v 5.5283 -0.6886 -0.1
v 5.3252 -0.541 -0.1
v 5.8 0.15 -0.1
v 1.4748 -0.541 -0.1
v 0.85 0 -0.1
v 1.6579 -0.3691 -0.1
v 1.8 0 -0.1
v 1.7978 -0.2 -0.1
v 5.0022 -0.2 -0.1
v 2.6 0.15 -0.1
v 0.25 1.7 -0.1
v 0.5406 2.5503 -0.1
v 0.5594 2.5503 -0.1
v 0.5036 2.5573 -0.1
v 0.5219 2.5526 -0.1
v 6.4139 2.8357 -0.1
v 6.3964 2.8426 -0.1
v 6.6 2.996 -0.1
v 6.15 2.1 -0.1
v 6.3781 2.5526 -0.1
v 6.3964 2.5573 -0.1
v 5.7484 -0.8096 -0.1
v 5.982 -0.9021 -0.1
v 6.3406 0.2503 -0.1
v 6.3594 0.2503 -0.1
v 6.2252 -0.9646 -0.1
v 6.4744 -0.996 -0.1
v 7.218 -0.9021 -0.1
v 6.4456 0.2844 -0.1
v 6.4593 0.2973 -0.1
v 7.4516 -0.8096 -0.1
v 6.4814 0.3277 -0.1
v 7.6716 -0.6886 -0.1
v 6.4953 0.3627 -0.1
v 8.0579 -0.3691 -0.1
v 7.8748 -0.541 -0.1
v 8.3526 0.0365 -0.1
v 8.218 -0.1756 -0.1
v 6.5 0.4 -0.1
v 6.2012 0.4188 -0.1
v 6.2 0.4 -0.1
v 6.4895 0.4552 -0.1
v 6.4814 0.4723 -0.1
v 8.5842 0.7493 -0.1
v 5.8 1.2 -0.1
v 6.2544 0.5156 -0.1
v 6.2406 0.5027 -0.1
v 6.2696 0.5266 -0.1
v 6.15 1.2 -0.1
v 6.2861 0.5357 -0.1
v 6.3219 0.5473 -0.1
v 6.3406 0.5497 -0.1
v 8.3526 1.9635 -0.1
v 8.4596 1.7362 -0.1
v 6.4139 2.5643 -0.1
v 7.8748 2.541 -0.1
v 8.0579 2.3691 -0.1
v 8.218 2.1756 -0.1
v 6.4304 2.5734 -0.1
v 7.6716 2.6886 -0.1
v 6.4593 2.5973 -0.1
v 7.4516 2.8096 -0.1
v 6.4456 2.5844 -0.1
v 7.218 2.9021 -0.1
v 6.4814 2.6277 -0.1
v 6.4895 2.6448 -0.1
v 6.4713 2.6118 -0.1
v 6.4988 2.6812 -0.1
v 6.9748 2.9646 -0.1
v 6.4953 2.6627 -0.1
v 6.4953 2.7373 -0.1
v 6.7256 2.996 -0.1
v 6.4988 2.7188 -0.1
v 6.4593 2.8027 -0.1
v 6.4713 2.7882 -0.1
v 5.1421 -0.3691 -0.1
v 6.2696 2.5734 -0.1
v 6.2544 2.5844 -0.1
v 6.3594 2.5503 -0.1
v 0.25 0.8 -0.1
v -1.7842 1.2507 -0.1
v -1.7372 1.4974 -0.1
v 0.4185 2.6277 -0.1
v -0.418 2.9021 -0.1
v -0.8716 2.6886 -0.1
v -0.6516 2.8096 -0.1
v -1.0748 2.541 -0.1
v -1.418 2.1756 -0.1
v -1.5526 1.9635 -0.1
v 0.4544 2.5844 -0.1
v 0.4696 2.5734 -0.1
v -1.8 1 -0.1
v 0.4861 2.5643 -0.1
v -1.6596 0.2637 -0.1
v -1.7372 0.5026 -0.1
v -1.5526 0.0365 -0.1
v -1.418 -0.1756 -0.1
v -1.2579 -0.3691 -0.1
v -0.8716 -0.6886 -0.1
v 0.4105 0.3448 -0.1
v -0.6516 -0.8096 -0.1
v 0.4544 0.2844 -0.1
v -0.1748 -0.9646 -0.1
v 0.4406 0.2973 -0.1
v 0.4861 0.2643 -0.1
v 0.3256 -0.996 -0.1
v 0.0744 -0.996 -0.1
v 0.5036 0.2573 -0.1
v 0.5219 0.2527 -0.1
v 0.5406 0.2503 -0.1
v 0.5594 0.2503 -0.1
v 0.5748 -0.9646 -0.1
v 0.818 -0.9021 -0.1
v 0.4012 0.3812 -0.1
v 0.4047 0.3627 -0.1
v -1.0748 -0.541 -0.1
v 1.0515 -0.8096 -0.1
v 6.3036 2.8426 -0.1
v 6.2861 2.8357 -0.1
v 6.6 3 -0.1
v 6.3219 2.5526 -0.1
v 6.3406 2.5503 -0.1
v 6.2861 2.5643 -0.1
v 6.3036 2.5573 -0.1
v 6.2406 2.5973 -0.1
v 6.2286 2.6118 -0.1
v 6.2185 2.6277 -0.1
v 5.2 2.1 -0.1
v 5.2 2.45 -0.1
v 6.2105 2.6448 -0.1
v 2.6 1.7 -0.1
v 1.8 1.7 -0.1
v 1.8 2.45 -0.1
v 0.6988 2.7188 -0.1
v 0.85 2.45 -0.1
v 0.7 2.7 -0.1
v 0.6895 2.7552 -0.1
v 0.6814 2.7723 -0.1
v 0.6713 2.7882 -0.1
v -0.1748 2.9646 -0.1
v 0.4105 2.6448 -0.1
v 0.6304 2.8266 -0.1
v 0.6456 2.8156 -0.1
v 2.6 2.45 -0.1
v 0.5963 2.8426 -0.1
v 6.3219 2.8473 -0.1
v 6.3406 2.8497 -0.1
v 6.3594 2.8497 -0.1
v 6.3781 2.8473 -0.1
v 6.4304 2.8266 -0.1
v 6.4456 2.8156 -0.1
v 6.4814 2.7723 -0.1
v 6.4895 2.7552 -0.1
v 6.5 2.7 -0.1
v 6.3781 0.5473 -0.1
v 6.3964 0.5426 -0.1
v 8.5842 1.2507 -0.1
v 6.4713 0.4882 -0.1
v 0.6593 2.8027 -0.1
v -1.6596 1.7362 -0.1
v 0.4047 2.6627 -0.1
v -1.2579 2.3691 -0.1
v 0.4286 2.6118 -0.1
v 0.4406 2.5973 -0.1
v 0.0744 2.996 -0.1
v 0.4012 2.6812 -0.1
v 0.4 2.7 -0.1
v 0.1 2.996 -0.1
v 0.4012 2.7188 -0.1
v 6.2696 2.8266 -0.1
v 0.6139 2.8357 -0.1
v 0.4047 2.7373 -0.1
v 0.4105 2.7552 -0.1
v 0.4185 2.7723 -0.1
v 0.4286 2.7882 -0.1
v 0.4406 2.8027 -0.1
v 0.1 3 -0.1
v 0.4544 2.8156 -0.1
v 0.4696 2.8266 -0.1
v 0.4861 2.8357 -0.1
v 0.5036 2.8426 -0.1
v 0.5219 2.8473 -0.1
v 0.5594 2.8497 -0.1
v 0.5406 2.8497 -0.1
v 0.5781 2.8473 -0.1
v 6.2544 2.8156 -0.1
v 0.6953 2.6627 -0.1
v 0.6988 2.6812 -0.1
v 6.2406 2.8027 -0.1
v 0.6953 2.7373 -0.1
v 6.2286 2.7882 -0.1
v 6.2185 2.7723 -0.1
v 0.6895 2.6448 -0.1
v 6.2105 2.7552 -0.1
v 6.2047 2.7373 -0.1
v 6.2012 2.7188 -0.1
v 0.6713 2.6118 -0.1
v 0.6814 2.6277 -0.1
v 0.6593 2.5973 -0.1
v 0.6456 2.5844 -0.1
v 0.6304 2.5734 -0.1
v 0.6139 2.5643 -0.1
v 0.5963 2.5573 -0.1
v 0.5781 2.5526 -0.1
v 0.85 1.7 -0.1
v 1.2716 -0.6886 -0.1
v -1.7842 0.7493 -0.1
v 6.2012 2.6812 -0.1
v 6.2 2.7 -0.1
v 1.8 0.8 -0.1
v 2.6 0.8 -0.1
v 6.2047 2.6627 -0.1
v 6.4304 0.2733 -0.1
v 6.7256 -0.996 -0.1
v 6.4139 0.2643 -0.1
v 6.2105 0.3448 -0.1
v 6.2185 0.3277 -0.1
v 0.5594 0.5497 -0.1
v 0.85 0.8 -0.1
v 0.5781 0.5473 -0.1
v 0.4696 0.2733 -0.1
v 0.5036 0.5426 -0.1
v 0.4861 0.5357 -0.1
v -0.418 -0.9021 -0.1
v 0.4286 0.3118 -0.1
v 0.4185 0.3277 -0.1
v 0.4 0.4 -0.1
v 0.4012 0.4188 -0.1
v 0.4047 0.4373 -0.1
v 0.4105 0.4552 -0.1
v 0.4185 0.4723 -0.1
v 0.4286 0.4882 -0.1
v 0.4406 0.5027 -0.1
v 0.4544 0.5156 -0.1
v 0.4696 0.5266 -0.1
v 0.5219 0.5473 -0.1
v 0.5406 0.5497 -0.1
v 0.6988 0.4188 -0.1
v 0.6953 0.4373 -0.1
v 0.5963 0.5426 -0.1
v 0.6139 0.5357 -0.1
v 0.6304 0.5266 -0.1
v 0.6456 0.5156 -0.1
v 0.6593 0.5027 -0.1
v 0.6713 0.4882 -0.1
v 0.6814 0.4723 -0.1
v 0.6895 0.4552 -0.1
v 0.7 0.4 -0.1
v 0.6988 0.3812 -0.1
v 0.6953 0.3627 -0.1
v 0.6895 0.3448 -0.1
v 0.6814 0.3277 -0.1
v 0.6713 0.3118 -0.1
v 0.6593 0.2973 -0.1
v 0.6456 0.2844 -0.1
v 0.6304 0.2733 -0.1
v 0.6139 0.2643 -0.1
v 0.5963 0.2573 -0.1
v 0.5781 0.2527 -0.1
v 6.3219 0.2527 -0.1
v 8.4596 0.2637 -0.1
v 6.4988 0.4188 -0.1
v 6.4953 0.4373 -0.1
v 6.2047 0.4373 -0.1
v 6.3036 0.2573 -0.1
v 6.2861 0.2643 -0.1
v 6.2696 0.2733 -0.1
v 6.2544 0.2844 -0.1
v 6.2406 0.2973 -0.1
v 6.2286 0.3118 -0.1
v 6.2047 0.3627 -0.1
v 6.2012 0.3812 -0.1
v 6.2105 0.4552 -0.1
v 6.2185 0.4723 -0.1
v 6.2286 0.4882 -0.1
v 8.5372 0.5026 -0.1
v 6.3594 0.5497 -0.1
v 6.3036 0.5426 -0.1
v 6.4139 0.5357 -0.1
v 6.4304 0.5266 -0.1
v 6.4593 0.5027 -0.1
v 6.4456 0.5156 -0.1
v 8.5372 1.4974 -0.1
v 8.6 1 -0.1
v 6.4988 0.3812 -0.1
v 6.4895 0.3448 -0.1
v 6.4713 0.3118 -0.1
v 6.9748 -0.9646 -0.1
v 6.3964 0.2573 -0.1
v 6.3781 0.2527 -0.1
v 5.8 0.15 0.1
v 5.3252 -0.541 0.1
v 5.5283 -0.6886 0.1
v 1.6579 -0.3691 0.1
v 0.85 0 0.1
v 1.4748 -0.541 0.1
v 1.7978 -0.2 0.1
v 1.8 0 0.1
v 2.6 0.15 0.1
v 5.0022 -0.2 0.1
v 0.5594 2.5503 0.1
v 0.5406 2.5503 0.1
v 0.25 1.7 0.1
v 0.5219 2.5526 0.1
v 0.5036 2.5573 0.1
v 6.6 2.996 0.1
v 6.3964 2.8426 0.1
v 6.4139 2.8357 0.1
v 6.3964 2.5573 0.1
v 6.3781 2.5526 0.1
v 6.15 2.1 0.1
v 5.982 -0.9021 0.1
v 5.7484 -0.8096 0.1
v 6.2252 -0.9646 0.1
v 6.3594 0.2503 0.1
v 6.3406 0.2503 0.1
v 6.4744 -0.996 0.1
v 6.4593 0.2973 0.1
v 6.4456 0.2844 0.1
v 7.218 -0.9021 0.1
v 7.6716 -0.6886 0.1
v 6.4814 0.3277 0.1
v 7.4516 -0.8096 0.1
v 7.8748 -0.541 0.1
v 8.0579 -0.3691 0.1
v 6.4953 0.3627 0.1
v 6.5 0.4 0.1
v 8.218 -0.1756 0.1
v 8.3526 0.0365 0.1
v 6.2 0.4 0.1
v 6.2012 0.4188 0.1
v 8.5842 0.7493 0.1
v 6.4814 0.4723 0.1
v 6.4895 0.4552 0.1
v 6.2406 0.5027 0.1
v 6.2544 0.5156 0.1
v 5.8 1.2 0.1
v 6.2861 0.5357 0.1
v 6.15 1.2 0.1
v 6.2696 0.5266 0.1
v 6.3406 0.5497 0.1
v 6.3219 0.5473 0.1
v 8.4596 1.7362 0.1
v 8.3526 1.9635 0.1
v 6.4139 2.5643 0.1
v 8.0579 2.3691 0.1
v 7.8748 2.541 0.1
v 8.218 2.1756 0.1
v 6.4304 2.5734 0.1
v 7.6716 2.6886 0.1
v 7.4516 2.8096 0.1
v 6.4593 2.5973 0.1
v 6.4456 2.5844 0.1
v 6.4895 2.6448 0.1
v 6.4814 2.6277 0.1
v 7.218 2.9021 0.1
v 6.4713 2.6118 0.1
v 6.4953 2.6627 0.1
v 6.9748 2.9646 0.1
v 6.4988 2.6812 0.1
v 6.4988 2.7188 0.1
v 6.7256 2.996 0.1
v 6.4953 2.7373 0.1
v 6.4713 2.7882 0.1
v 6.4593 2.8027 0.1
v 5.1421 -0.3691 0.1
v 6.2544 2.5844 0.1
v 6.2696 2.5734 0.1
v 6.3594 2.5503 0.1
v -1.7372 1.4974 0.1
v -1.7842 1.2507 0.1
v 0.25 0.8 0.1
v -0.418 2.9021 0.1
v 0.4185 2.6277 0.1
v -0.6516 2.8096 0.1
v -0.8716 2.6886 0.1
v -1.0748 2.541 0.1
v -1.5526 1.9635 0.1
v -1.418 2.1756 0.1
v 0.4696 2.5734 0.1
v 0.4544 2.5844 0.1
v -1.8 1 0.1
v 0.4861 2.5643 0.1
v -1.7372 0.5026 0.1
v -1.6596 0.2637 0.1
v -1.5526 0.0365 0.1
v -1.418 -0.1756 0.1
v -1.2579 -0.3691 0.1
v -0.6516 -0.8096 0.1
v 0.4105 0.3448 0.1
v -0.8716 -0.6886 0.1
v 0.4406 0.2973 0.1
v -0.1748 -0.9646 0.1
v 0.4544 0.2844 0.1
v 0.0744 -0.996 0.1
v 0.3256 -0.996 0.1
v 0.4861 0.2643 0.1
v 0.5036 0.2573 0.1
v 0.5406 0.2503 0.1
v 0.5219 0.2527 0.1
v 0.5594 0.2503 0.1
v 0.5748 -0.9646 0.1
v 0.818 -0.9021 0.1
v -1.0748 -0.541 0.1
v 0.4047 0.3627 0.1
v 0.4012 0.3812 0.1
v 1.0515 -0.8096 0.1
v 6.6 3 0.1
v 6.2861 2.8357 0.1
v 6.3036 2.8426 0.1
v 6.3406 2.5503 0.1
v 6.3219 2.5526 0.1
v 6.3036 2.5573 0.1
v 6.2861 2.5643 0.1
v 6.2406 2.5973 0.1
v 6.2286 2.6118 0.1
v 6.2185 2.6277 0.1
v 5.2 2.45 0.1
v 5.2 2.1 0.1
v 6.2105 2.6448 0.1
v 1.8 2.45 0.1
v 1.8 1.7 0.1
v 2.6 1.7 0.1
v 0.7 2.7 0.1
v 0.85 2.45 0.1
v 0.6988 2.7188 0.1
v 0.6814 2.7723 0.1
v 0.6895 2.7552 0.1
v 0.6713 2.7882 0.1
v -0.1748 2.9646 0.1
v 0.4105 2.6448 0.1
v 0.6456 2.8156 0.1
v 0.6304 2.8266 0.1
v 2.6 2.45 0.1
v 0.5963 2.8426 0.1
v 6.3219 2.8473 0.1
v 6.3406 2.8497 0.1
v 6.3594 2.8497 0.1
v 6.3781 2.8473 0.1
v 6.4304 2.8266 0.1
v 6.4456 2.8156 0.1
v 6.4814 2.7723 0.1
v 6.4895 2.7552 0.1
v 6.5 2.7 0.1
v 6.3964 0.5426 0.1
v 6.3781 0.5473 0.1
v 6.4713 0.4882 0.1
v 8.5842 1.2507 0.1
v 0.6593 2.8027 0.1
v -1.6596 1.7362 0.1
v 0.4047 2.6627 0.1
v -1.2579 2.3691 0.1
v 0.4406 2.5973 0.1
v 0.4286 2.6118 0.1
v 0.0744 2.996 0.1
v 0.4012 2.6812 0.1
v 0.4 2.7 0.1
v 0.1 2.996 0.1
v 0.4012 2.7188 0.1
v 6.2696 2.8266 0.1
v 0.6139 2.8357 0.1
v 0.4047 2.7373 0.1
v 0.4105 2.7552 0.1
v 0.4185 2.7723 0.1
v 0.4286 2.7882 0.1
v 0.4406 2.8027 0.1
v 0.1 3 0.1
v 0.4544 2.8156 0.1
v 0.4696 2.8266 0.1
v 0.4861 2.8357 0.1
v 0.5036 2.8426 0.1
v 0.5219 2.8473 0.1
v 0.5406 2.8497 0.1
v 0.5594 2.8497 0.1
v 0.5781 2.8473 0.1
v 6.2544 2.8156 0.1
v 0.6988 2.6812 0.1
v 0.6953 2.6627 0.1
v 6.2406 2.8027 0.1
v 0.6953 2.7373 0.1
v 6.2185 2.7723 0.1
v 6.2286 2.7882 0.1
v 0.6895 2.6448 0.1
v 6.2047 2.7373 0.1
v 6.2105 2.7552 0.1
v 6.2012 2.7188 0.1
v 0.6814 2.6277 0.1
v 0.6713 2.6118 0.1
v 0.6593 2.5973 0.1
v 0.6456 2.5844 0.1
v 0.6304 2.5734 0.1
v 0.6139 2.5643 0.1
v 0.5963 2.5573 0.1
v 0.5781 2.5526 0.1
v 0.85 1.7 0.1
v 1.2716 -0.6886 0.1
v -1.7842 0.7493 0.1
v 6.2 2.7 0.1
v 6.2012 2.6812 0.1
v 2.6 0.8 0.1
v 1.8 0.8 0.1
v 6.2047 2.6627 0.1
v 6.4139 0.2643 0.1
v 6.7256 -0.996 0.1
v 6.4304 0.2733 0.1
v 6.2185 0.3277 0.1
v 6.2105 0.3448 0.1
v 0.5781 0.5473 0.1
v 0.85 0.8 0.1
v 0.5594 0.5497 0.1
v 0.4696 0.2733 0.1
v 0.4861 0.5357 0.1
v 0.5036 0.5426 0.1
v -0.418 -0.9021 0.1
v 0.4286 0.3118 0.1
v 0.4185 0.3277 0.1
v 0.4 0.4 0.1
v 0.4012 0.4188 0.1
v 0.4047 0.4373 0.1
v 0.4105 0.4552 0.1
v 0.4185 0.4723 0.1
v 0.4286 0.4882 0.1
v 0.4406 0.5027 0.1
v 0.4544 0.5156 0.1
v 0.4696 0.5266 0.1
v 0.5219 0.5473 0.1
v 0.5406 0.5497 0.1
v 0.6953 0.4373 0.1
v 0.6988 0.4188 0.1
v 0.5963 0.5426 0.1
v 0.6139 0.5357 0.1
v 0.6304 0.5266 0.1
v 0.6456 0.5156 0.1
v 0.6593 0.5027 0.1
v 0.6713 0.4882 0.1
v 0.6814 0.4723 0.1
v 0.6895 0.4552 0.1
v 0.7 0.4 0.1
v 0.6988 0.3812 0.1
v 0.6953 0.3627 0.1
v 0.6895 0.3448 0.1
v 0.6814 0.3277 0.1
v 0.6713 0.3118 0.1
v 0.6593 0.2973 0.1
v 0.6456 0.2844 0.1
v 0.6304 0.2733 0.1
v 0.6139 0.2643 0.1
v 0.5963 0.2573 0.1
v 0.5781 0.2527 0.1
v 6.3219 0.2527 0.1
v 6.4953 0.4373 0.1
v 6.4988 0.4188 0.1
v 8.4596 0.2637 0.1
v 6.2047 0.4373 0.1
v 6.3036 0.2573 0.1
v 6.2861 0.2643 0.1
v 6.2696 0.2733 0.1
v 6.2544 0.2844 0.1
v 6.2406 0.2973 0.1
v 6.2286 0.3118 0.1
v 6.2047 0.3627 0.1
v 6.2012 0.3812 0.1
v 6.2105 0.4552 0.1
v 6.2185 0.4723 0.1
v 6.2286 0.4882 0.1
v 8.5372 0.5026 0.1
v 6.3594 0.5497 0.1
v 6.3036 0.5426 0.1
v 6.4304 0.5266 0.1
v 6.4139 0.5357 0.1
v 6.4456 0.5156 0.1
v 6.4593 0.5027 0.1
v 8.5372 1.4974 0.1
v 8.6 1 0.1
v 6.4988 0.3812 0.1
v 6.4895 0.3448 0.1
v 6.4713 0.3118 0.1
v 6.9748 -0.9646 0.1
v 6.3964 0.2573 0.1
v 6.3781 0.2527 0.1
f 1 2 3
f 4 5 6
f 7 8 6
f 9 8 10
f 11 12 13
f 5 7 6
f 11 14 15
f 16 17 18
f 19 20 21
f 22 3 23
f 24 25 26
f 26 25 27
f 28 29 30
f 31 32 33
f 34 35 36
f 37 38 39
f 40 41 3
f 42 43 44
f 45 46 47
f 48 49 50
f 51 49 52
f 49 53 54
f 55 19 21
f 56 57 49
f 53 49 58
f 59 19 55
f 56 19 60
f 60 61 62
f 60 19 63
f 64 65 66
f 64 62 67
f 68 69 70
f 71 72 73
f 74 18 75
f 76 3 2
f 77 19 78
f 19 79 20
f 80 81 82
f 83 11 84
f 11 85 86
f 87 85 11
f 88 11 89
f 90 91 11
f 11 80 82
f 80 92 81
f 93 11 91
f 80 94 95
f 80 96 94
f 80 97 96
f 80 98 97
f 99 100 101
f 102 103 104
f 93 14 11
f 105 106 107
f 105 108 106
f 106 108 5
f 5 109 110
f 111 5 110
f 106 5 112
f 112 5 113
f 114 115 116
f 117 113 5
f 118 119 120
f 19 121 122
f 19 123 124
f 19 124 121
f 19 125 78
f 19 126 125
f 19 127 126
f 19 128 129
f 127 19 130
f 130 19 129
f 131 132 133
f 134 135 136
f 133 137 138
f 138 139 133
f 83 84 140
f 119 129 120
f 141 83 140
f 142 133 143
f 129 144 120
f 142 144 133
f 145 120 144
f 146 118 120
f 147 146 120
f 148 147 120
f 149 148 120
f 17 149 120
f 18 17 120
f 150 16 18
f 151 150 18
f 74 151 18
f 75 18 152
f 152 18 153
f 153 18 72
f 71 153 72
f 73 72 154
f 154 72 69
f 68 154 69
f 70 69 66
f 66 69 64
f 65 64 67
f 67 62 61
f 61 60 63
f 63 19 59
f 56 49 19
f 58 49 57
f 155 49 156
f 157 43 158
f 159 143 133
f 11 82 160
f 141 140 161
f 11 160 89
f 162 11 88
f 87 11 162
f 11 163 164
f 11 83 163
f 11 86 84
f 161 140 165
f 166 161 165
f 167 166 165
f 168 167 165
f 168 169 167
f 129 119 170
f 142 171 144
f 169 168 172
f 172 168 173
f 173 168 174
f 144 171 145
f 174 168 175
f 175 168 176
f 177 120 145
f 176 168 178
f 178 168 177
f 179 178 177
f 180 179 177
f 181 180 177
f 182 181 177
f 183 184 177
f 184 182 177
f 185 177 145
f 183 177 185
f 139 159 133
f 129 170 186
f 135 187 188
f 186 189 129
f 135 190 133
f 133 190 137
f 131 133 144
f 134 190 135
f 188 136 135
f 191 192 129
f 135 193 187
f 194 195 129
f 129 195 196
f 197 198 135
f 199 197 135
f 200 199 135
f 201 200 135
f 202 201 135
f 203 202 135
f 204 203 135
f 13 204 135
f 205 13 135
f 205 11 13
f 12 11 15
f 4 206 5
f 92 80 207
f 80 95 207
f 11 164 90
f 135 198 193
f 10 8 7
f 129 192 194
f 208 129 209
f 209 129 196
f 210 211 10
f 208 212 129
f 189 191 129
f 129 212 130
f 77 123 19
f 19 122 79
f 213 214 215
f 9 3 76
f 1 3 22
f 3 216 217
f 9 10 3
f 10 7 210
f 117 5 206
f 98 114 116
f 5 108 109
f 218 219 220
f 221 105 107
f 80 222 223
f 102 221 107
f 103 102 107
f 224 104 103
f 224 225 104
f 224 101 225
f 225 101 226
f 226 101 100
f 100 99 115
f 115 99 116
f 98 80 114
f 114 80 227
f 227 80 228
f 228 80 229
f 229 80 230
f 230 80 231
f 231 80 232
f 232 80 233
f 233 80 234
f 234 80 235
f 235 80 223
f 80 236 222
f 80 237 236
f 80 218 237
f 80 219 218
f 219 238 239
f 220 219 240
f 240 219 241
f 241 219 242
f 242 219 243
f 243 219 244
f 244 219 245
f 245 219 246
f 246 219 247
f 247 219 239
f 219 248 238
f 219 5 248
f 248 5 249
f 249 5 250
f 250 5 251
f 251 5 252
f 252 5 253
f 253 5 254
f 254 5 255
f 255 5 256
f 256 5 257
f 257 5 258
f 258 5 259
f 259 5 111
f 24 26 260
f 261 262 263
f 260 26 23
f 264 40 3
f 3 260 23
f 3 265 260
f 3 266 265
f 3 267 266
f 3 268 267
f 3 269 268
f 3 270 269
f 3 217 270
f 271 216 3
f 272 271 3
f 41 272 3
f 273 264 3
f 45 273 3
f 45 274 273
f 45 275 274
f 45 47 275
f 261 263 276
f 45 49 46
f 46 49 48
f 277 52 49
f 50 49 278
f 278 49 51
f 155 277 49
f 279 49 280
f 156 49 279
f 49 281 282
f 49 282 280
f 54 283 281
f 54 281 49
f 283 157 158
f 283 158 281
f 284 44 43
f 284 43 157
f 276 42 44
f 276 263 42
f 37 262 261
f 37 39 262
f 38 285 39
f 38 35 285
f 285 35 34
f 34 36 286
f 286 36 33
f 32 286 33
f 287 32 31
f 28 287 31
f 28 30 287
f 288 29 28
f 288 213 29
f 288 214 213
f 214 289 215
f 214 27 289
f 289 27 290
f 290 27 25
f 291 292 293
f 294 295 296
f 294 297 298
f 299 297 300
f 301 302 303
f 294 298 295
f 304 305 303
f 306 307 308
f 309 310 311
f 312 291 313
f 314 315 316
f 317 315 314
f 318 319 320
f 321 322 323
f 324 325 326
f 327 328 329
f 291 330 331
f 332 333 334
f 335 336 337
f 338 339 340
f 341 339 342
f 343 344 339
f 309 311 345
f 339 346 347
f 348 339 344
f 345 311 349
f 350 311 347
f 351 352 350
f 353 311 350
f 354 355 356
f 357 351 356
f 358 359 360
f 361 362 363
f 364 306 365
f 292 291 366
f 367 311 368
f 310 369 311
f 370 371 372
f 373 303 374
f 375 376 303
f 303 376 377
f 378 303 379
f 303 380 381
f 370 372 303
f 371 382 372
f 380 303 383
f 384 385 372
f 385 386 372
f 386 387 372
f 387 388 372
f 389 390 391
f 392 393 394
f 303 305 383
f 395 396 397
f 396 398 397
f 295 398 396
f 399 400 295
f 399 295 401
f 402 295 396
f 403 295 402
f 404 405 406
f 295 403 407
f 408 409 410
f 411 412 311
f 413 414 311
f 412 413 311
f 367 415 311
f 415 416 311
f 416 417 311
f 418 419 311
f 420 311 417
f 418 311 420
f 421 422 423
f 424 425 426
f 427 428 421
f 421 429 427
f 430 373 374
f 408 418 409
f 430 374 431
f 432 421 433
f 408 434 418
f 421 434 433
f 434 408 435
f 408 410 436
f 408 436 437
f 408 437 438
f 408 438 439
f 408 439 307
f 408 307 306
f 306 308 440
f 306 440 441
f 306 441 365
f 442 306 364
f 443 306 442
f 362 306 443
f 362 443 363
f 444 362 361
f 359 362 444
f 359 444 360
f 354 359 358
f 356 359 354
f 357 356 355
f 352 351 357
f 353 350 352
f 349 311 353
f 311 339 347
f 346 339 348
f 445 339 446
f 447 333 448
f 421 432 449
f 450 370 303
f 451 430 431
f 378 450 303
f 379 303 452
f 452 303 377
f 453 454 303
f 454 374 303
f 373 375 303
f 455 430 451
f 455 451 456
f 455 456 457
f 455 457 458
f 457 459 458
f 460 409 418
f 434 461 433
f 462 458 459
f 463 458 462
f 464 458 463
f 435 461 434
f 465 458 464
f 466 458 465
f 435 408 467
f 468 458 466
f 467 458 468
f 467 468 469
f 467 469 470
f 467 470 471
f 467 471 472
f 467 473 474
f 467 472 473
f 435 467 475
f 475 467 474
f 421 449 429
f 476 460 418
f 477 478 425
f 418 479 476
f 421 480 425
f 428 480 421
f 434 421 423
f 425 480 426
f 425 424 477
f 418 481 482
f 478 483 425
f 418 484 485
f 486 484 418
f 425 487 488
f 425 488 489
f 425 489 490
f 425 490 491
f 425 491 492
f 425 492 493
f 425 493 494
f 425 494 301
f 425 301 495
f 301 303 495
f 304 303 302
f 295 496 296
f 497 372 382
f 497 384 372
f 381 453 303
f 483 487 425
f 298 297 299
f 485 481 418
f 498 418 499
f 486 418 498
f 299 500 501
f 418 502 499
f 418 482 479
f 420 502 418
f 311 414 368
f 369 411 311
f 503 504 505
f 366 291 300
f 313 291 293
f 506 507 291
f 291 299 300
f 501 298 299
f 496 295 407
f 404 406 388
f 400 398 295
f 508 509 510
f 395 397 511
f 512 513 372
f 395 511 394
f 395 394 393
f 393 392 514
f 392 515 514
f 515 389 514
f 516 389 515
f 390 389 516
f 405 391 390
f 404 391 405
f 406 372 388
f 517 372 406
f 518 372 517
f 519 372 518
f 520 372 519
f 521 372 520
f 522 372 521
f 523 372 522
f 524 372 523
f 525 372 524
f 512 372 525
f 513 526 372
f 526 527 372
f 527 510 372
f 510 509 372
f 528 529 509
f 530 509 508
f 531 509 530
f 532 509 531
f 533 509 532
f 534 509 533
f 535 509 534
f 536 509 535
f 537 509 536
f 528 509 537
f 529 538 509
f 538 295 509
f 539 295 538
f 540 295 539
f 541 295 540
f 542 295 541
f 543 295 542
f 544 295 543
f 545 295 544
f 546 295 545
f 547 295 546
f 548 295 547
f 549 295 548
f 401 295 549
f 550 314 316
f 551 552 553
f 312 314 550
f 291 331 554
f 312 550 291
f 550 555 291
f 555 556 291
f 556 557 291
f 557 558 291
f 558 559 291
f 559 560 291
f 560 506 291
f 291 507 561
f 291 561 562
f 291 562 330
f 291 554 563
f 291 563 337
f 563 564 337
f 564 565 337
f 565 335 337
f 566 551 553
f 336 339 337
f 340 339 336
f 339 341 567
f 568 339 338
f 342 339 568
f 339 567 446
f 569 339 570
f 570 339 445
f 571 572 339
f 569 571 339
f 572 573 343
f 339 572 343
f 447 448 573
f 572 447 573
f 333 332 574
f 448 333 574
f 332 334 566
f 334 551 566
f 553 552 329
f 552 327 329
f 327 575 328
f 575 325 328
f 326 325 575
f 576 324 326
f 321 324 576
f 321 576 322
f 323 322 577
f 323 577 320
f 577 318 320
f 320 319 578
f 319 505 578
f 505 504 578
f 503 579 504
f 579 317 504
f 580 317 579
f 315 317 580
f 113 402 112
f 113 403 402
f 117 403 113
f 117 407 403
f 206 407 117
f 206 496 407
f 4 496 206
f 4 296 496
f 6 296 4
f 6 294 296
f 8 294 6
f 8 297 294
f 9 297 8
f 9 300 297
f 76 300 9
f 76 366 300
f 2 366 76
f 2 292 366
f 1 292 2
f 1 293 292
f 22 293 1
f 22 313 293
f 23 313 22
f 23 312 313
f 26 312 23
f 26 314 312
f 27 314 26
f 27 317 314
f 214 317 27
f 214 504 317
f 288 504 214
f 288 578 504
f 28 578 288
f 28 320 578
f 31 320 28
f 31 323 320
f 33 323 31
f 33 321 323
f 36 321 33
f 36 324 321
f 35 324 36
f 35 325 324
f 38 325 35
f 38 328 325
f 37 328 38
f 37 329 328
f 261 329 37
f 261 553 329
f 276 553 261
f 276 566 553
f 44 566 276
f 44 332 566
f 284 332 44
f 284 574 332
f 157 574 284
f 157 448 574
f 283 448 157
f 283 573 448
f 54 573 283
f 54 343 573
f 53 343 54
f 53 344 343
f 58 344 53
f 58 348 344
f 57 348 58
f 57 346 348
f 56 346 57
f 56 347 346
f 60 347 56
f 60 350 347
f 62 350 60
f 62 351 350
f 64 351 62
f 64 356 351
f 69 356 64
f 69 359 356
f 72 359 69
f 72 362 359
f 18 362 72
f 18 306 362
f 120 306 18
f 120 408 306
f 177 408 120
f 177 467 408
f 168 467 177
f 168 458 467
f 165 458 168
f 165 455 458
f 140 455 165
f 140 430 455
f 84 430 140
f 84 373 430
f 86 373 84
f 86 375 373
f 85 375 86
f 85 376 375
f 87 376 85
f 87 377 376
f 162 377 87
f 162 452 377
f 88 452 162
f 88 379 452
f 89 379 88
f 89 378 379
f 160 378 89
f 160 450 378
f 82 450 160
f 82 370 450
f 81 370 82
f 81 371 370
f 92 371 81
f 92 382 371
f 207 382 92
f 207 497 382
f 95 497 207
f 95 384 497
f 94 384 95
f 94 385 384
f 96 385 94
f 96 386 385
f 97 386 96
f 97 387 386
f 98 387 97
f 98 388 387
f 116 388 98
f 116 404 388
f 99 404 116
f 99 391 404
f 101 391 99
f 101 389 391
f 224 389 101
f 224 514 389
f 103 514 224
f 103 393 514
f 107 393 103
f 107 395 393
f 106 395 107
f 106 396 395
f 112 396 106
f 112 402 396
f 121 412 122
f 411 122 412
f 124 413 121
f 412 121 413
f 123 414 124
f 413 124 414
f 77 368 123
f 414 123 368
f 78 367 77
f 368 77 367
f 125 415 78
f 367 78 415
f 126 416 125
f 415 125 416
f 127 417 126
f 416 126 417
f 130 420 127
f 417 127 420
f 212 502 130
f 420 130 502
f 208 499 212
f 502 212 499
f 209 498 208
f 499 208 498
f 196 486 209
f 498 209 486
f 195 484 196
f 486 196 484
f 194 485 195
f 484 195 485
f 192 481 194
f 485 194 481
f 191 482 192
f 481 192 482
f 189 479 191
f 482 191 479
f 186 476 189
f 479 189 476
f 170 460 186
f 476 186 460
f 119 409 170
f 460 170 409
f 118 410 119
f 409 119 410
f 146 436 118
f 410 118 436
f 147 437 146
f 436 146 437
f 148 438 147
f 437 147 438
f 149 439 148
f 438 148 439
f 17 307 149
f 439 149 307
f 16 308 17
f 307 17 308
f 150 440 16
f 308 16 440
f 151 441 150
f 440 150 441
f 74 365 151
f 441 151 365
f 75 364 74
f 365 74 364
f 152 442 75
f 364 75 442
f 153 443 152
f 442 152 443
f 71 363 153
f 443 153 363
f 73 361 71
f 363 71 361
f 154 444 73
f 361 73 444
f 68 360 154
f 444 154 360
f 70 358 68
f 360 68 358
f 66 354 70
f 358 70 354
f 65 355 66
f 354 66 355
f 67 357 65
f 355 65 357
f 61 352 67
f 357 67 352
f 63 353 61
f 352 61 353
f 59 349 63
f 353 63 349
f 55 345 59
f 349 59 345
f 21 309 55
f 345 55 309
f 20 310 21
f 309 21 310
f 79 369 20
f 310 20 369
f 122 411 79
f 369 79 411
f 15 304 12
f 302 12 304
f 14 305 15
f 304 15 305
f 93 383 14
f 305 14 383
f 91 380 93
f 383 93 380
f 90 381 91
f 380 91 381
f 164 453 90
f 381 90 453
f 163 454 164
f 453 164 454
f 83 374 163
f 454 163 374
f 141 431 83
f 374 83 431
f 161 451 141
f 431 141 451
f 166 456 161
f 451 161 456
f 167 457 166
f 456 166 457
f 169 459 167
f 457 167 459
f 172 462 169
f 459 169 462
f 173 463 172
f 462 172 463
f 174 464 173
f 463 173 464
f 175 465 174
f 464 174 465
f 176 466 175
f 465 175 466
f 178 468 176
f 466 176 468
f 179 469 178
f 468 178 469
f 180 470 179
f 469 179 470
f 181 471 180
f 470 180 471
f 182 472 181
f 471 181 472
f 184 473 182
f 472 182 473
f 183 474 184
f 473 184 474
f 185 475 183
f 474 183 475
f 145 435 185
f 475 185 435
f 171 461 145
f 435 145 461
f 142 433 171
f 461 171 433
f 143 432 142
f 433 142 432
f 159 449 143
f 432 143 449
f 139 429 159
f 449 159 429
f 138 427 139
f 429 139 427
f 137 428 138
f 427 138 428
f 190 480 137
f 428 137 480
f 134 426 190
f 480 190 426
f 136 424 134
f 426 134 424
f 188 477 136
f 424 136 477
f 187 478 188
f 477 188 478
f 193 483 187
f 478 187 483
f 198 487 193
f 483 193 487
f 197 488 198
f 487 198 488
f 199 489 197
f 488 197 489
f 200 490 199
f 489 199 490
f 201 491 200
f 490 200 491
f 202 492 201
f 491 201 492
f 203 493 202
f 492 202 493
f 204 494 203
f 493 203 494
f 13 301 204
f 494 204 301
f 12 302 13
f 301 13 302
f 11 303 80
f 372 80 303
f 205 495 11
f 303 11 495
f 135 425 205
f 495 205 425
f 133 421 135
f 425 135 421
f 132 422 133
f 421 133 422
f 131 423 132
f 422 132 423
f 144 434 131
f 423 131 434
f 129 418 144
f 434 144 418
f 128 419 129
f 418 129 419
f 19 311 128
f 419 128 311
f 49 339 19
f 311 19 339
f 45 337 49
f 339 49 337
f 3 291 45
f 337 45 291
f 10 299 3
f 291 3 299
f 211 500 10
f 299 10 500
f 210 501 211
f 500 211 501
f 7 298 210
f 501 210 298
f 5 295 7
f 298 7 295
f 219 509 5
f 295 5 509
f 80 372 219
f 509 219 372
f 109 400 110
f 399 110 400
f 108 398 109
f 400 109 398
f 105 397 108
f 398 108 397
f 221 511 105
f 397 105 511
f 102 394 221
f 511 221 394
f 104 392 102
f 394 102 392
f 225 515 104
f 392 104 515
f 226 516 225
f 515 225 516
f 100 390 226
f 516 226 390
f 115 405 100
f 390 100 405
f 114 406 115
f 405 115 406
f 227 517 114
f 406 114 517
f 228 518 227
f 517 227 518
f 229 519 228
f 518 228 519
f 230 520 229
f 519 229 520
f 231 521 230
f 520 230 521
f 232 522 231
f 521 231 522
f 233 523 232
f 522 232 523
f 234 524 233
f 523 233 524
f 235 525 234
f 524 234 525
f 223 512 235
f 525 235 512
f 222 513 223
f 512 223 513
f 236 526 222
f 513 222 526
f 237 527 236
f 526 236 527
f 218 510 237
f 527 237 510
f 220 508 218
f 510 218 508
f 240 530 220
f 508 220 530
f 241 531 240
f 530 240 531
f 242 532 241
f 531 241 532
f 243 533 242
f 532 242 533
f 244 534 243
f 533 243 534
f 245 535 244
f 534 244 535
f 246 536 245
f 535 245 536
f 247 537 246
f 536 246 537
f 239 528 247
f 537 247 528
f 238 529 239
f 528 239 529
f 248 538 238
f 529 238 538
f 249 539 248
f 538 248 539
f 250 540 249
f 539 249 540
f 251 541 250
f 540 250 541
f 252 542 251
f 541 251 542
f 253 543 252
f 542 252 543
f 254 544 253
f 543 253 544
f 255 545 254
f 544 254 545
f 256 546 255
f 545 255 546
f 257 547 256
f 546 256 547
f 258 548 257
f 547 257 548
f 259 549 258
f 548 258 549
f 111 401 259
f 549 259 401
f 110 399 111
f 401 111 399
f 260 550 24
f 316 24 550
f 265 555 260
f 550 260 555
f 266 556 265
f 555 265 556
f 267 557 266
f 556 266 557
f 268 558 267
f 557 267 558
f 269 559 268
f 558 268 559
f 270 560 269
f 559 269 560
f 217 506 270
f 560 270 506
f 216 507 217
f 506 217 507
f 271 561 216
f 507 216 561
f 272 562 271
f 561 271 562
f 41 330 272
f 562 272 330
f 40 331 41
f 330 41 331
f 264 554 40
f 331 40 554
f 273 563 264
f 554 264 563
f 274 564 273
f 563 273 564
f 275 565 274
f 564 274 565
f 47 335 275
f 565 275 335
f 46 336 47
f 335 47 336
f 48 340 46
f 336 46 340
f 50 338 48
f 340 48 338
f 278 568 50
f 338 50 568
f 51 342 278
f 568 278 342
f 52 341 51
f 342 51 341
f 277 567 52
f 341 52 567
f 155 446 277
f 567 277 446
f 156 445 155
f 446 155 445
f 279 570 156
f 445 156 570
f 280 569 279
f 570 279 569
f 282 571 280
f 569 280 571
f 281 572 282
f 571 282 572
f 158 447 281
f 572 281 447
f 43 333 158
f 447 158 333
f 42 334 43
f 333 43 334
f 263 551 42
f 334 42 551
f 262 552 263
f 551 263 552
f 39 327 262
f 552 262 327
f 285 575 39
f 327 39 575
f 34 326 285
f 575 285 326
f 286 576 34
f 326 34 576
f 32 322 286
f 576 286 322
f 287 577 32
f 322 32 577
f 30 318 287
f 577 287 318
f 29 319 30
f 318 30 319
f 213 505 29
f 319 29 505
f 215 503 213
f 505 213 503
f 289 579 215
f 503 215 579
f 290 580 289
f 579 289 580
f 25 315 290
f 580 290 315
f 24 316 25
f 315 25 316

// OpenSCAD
module roundedSquare( width, length, radiusCorner ) {
	translate( [ radiusCorner, radiusCorner, 0 ] )
		minkowski() {
			square( [width - 2 * radiusCorner, length - 2 * radiusCorner], false);
			circle(radiusCorner, $fn=50);
		}
}

//Make it 3D
linear_extrude(height = 0.2, center = true, convexity = 10, twist = 0)

/*translate([-1.8,1])
    square([10.4,1]);

translate([0.5,-1])
    square([1,4]);*/

difference()
{
    union()
    {
        translate([0.1,-0.2])
            square([6.5, 3.2]);
        translate([0.2,1])
            circle(2, true, $fn=50);
        translate([6.6,1])
            circle(2, true, $fn=50);
    }
    
    // Mounting holes
    translate([0.55,0.4])
        circle(0.15, true, $fn=50);
    translate([6.35,0.4])
        circle(0.15, true, $fn=50);
    translate([6.35,2.7])
        circle(0.15, true, $fn=50);
    translate([0.55,2.7])
        circle(0.15, true, $fn=50);
    
    // Longer hole for the button with down arrow
    translate([1.325,0.1])
       square([0.95, 0.2], true);
    
    // Huge hole
    difference()
    {
        translate([3.2,1.3])
            square([5.9, 2.3], true);
        
        // most left down
        translate([0.5,0.4])
            square([0.7, 0.8], true);
        
        // right up
        translate([0.5,2.1])
            square([0.7, 0.8], true);
        
        // middle up
        translate([2.2,2.1])
            square([0.8, 0.8], true);
        
        // middle down
        translate([2.2,0.4])
            square([0.8, 0.8], true);
        
        // far right up
        translate([5.7,2.3])
            square([1, 0.4], true);
        
        // far right down
        translate([6,0.6])
            square([0.4, 1.2], true);
    }
}
